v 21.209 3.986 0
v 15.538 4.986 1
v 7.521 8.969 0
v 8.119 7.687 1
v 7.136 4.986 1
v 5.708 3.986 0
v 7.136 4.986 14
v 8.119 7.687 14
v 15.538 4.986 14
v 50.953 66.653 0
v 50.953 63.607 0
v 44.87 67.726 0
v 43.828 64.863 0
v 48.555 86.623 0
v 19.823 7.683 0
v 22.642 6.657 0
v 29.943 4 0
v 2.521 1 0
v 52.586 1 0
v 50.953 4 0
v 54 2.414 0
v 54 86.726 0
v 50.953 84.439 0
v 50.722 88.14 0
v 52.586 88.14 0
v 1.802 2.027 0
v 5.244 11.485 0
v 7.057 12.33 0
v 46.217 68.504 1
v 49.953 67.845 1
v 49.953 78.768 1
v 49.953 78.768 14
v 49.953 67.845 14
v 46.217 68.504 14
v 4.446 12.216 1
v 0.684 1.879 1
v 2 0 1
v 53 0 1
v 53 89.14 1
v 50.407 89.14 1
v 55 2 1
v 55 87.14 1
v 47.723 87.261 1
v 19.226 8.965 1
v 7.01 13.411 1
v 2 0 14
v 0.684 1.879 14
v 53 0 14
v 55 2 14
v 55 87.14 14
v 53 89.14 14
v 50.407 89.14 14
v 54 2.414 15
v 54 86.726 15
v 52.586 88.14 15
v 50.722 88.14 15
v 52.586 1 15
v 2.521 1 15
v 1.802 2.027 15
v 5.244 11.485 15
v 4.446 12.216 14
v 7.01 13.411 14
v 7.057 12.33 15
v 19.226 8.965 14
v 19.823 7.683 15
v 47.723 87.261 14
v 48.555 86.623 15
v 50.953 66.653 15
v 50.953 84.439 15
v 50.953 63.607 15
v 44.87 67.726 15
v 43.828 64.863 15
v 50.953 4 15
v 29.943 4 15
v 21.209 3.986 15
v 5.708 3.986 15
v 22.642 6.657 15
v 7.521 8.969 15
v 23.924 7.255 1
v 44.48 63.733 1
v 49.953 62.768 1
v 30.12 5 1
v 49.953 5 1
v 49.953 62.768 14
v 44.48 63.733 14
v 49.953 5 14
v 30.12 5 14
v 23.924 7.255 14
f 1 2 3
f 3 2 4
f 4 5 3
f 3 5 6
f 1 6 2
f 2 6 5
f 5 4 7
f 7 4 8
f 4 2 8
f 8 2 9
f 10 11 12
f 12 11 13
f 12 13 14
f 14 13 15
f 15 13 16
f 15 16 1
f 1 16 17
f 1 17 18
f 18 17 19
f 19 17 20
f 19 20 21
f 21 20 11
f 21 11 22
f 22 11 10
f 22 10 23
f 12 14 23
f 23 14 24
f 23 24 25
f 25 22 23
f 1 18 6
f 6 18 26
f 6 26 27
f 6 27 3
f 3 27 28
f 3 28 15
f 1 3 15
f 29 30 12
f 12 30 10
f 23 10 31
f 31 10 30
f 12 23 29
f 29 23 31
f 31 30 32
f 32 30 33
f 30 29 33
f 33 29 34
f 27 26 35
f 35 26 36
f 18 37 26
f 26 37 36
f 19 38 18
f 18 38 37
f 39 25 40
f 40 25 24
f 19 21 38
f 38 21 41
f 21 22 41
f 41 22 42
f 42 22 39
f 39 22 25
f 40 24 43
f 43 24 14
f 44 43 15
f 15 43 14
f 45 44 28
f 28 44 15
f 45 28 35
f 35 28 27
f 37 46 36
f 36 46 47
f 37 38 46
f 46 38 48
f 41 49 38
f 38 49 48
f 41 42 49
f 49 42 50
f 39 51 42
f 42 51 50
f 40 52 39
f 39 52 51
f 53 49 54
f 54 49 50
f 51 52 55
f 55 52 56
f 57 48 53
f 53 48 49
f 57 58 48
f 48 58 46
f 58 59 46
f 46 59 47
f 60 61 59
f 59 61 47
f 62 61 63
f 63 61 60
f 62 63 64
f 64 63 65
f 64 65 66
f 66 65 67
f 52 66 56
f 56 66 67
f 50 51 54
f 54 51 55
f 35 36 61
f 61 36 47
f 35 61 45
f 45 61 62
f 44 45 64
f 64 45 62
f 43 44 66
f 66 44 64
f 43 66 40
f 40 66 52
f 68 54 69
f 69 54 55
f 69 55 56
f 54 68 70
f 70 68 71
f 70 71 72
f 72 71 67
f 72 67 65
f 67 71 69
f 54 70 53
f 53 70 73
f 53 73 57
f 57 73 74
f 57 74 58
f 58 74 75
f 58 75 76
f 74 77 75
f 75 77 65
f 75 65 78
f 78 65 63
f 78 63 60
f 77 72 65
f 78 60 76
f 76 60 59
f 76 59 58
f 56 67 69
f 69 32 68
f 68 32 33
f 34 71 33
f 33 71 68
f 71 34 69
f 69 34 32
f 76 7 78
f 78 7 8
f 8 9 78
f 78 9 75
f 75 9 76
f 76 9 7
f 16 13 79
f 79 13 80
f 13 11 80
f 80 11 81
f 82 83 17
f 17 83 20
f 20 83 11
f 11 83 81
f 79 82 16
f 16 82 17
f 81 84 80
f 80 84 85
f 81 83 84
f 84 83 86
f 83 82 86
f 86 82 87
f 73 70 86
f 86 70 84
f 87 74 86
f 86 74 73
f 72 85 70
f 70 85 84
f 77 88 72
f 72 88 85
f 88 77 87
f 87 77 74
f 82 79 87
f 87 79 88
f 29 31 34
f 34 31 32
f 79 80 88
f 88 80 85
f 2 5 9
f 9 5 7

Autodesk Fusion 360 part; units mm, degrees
sketch "Sketch1" plane through (0, 0, 0) normal (0, 0, 1) x (1, 0, 0)
  line L0 (0, 0) -> (5.1303, 14.0954)
  line L1 (0, 0) -> (15, 0) construction
  line L2 (5.1303, 14.0954) -> (19.2257, 8.9651)
  line L3 (5.1303, 14.0954) -> (20.1303, 14.0954) construction
  line L4 (19.2257, 8.9651) -> (46.5873, 84.1405)
  line L5 (19.2257, 8.9651) -> (99.2257, 8.9651) construction
  line L6 (46.5873, 84.1405) -> (55, 84.1405)
  line L7 (55, 84.1405) -> (55, 0)
  line L8 (55, 0) -> (0, 0)
  dimension "d1" = 70
  dimension "d2" = 15
  dimension "d3" = 20
  dimension "d4" = 15
  dimension "d5" = 70
  dimension "d6" = 80
extrude "Extrude1" add sketch "Sketch1" along normal blind 15
sketch "Sketch2" plane through (0, 0, 15) normal (0, 0, 1) x (-1, 0, 0)
  line L0 (-55, 0) -> (-55, -84.1405)
  line L1 (-55, -84.1405) -> (-46.5873, -84.1405)
  line L2 (-46.5873, -84.1405) -> (-19.2257, -8.9651)
  line L3 (-19.2257, -8.9651) -> (-5.1303, -14.0954)
  line L4 (-5.1303, -14.0954) -> (0, 0)
  line L5 (0, 0) -> (-55, 0)
  line L6 (-23.9242, -7.255) -> (-49.9527, -78.7679)
  line L7 (-23.9242, -7.255) -> (52.1783, -7.255) construction
  line L8 (-49.9527, -78.7679) -> (-49.9527, -5)
  line L9 (-23.9242, -7.255) -> (-30.1197, -5)
  line L10 (-23.9242, -7.255) -> (-17.331, -7.255) construction
  line L11 (-49.9527, -5) -> (-30.1197, -5)
  dimension "d13" = 5
  dimension "d14" = 110
  dimension "d15" = 160
extrude "Extrude2" cut sketch "Sketch2" against normal blind 78 contours L6 L8 L9 L11
sketch "Sketch3" plane through (0, 0, 15) normal (0, 0, 1) x (-1, 0, 0)
  line L0 (-49.9527, -5) -> (-30.1197, -5)
  line L1 (-30.1197, -5) -> (-23.9242, -7.255)
  line L2 (-23.9242, -7.255) -> (-49.9527, -78.7679)
  line L3 (-49.9527, -78.7679) -> (-49.9527, -5)
  line L4 (-55, 0) -> (-55, -84.1405)
  line L5 (-55, -84.1405) -> (-46.5873, -84.1405)
  line L6 (-46.5873, -84.1405) -> (-19.2257, -8.9651)
  line L7 (-19.2257, -8.9651) -> (-5.1303, -14.0954)
  line L8 (-5.1303, -14.0954) -> (0, 0)
  line L9 (0, 0) -> (-55, 0)
  line L10 (-7.1358, -4.9864) -> (-15.5382, -4.9864)
  line L11 (-7.1358, -4.9864) -> (-8.1187, -7.6868)
  line L12 (-8.1187, -7.6868) -> (-15.5382, -4.9864)
extrude "Extrude3" cut sketch "Sketch3" against normal blind 57 contours L10 L11 L12
chamfer "Chamfer1" distance 2 angle 45 1 edges at (0, 0, 7.5)
chamfer "Chamfer2" distance 2 angle 45 1 edges at (55, 0, 7.5)
chamfer "Chamfer3" distance 2 angle 45 1 edges at (5.1303, 14.0954, 7.5)
chamfer "Chamfer8" distance 16 angle 45 1 edges at (49.9527, 78.7679, 7.5)
sketch "Sketch4" plane through (0, 0, 15) normal (0, 0, 1) x (-1, 0, 0)
  line L0 (-49.9527, -5) -> (-30.1197, -5)
  line L1 (-30.1197, -5) -> (-23.9242, -7.255)
  line L2 (-23.9242, -7.255) -> (-44.4804, -63.7328)
  line L3 (-44.4804, -63.7328) -> (-49.9527, -62.7679)
  line L4 (-49.9527, -62.7679) -> (-49.9527, -5)
  line L5 (-8.1187, -7.6868) -> (-15.5382, -4.9864)
  line L6 (-15.5382, -4.9864) -> (-7.1358, -4.9864)
  line L7 (-7.1358, -4.9864) -> (-8.1187, -7.6868)
  line L8 (-49.9527, -78.7679) -> (-46.2169, -68.5038)
  line L9 (-49.9527, -78.7679) -> (-49.9527, -67.8451)
  line L10 (-46.2169, -68.5038) -> (-49.9527, -67.8451)
  line L11 (-7.0097, -13.4113) -> (-4.4463, -12.216)
  line L12 (-4.4463, -12.216) -> (-0.684, -1.8794)
  line L13 (-0.684, -1.8794) -> (-2, 0)
  line L14 (-2, 0) -> (-53, 0)
  line L15 (-53, 0) -> (-55, -2)
  line L16 (-55, -2) -> (-55, -84.1405)
  line L17 (-55, -84.1405) -> (-46.5873, -84.1405)
  line L18 (-46.5873, -84.1405) -> (-19.2257, -8.9651)
  line L19 (-19.2257, -8.9651) -> (-7.0097, -13.4113)
extrude "Extrude4" cut sketch "Sketch4" against normal blind 36 contours L8 L9 L10
chamfer "Chamfer9" distance 1 angle 45 5 edges at (34.2023, 35.4939, 15) (27.0219, 6.1275, 15) (40.0362, 5, 15) (49.9527, 33.884, 15) (47.2166, 63.2504, 15)
chamfer "Chamfer10" distance 1 angle 45 5 edges at (49.9527, 33.884, 0) (47.2166, 63.2504, 0) (34.2023, 35.4939, 0) (27.0219, 6.1275, 0) (40.0362, 5, 0)
chamfer "Chamfer11" distance 1 angle 45 3 edges at (11.337, 4.9864, 15) (11.8284, 6.3366, 15) (7.6272, 6.3366, 15)
extrude "Extrude5" add 1 faces at (49.3915, 84.1405, 5) along direction (0, 1, 0) blind 5
sketch "Sketch5" plane through (0, 0, 15) normal (0, 0, 1) x (-1, 0, 0)
  line L0 (-50.9527, -63.607) -> (-50.9527, -4)
  line L1 (-50.9527, -4) -> (-29.9434, -4)
  line L2 (-29.9434, -4) -> (-22.6424, -6.6573)
  line L3 (-22.6424, -6.6573) -> (-43.8277, -64.8634)
  line L4 (-43.8277, -64.8634) -> (-50.9527, -63.607)
  line L5 (-49.9527, -67.8451) -> (-46.2169, -68.5038)
  line L6 (-46.2169, -68.5038) -> (-49.9527, -78.7679)
  line L7 (-49.9527, -78.7679) -> (-49.9527, -67.8451)
  line L8 (-7.0097, -13.4113) -> (-4.4463, -12.216)
  line L9 (-4.4463, -12.216) -> (-0.684, -1.8794)
  line L10 (-0.684, -1.8794) -> (-2, 0)
  line L11 (-2, 0) -> (-53, 0)
  line L12 (-53, 0) -> (-55, -2)
  line L13 (-55, -2) -> (-55, -89.1405)
  line L14 (-55, -89.1405) -> (-46.5873, -89.1405)
  line L15 (-46.5873, -89.1405) -> (-46.5873, -84.1405)
  line L16 (-46.5873, -84.1405) -> (-19.2257, -8.9651)
  line L17 (-19.2257, -8.9651) -> (-7.0097, -13.4113)
  line L18 (-5.7076, -3.9864) -> (-7.521, -8.9685)
  line L19 (-7.521, -8.9685) -> (-21.2094, -3.9864)
  line L20 (-21.2094, -3.9864) -> (-5.7076, -3.9864)
  line L21 (-46.5873, -84.1405) -> (-48.4072, -89.1405)
  line L22 (-46.5873, -84.1405) -> (-41.2664, -84.1405) construction
  dimension "d43" = 110
extrude "Extrude6" cut sketch "Sketch5" against normal blind 20 contours L14 L15 L21
chamfer "Chamfer12" distance 1 angle 45 3 edges at (48.0848, 73.6359, 15) (49.9527, 73.3065, 15) (48.0848, 68.1744, 15)
chamfer "Chamfer13" distance 2 angle 45 2 edges at (48.4072, 89.1405, 7.5) (55, 89.1405, 7.5)
chamfer "Chamfer14" distance 1 angle 45 11 edges at (5.728, 12.8137, 15) (2.5652, 7.0477, 15) (1.342, 0.9397, 15) (27.5, 0, 15) (13.1177, 11.1882, 15) (33.4744, 48.1131, 15) (55, 44.5702, 15) (54, 1, 15) (54, 88.1405, 15) (51.7036, 89.1405, 15) (49.0651, 88.2008, 15)
chamfer "Chamfer15" distance 1 angle 45 11 edges at (55, 44.5702, 0) (54, 88.1405, 0) (51.7036, 89.1405, 0) (49.0651, 88.2008, 0) (33.4744, 48.1131, 0) (13.1177, 11.1882, 0) (5.728, 12.8137, 0) (2.5652, 7.0477, 0) (1.342, 0.9397, 0) (27.5, 0, 0) (54, 1, 0)
chamfer "Chamfer16" distance 1 angle 45 3 edges at (49.9527, 73.3065, 0) (48.0848, 73.6359, 0) (48.0848, 68.1744, 0)
chamfer "Chamfer17" distance 1 angle 45 3 edges at (11.337, 4.9864, 0) (11.8284, 6.3366, 0) (7.6272, 6.3366, 0)
